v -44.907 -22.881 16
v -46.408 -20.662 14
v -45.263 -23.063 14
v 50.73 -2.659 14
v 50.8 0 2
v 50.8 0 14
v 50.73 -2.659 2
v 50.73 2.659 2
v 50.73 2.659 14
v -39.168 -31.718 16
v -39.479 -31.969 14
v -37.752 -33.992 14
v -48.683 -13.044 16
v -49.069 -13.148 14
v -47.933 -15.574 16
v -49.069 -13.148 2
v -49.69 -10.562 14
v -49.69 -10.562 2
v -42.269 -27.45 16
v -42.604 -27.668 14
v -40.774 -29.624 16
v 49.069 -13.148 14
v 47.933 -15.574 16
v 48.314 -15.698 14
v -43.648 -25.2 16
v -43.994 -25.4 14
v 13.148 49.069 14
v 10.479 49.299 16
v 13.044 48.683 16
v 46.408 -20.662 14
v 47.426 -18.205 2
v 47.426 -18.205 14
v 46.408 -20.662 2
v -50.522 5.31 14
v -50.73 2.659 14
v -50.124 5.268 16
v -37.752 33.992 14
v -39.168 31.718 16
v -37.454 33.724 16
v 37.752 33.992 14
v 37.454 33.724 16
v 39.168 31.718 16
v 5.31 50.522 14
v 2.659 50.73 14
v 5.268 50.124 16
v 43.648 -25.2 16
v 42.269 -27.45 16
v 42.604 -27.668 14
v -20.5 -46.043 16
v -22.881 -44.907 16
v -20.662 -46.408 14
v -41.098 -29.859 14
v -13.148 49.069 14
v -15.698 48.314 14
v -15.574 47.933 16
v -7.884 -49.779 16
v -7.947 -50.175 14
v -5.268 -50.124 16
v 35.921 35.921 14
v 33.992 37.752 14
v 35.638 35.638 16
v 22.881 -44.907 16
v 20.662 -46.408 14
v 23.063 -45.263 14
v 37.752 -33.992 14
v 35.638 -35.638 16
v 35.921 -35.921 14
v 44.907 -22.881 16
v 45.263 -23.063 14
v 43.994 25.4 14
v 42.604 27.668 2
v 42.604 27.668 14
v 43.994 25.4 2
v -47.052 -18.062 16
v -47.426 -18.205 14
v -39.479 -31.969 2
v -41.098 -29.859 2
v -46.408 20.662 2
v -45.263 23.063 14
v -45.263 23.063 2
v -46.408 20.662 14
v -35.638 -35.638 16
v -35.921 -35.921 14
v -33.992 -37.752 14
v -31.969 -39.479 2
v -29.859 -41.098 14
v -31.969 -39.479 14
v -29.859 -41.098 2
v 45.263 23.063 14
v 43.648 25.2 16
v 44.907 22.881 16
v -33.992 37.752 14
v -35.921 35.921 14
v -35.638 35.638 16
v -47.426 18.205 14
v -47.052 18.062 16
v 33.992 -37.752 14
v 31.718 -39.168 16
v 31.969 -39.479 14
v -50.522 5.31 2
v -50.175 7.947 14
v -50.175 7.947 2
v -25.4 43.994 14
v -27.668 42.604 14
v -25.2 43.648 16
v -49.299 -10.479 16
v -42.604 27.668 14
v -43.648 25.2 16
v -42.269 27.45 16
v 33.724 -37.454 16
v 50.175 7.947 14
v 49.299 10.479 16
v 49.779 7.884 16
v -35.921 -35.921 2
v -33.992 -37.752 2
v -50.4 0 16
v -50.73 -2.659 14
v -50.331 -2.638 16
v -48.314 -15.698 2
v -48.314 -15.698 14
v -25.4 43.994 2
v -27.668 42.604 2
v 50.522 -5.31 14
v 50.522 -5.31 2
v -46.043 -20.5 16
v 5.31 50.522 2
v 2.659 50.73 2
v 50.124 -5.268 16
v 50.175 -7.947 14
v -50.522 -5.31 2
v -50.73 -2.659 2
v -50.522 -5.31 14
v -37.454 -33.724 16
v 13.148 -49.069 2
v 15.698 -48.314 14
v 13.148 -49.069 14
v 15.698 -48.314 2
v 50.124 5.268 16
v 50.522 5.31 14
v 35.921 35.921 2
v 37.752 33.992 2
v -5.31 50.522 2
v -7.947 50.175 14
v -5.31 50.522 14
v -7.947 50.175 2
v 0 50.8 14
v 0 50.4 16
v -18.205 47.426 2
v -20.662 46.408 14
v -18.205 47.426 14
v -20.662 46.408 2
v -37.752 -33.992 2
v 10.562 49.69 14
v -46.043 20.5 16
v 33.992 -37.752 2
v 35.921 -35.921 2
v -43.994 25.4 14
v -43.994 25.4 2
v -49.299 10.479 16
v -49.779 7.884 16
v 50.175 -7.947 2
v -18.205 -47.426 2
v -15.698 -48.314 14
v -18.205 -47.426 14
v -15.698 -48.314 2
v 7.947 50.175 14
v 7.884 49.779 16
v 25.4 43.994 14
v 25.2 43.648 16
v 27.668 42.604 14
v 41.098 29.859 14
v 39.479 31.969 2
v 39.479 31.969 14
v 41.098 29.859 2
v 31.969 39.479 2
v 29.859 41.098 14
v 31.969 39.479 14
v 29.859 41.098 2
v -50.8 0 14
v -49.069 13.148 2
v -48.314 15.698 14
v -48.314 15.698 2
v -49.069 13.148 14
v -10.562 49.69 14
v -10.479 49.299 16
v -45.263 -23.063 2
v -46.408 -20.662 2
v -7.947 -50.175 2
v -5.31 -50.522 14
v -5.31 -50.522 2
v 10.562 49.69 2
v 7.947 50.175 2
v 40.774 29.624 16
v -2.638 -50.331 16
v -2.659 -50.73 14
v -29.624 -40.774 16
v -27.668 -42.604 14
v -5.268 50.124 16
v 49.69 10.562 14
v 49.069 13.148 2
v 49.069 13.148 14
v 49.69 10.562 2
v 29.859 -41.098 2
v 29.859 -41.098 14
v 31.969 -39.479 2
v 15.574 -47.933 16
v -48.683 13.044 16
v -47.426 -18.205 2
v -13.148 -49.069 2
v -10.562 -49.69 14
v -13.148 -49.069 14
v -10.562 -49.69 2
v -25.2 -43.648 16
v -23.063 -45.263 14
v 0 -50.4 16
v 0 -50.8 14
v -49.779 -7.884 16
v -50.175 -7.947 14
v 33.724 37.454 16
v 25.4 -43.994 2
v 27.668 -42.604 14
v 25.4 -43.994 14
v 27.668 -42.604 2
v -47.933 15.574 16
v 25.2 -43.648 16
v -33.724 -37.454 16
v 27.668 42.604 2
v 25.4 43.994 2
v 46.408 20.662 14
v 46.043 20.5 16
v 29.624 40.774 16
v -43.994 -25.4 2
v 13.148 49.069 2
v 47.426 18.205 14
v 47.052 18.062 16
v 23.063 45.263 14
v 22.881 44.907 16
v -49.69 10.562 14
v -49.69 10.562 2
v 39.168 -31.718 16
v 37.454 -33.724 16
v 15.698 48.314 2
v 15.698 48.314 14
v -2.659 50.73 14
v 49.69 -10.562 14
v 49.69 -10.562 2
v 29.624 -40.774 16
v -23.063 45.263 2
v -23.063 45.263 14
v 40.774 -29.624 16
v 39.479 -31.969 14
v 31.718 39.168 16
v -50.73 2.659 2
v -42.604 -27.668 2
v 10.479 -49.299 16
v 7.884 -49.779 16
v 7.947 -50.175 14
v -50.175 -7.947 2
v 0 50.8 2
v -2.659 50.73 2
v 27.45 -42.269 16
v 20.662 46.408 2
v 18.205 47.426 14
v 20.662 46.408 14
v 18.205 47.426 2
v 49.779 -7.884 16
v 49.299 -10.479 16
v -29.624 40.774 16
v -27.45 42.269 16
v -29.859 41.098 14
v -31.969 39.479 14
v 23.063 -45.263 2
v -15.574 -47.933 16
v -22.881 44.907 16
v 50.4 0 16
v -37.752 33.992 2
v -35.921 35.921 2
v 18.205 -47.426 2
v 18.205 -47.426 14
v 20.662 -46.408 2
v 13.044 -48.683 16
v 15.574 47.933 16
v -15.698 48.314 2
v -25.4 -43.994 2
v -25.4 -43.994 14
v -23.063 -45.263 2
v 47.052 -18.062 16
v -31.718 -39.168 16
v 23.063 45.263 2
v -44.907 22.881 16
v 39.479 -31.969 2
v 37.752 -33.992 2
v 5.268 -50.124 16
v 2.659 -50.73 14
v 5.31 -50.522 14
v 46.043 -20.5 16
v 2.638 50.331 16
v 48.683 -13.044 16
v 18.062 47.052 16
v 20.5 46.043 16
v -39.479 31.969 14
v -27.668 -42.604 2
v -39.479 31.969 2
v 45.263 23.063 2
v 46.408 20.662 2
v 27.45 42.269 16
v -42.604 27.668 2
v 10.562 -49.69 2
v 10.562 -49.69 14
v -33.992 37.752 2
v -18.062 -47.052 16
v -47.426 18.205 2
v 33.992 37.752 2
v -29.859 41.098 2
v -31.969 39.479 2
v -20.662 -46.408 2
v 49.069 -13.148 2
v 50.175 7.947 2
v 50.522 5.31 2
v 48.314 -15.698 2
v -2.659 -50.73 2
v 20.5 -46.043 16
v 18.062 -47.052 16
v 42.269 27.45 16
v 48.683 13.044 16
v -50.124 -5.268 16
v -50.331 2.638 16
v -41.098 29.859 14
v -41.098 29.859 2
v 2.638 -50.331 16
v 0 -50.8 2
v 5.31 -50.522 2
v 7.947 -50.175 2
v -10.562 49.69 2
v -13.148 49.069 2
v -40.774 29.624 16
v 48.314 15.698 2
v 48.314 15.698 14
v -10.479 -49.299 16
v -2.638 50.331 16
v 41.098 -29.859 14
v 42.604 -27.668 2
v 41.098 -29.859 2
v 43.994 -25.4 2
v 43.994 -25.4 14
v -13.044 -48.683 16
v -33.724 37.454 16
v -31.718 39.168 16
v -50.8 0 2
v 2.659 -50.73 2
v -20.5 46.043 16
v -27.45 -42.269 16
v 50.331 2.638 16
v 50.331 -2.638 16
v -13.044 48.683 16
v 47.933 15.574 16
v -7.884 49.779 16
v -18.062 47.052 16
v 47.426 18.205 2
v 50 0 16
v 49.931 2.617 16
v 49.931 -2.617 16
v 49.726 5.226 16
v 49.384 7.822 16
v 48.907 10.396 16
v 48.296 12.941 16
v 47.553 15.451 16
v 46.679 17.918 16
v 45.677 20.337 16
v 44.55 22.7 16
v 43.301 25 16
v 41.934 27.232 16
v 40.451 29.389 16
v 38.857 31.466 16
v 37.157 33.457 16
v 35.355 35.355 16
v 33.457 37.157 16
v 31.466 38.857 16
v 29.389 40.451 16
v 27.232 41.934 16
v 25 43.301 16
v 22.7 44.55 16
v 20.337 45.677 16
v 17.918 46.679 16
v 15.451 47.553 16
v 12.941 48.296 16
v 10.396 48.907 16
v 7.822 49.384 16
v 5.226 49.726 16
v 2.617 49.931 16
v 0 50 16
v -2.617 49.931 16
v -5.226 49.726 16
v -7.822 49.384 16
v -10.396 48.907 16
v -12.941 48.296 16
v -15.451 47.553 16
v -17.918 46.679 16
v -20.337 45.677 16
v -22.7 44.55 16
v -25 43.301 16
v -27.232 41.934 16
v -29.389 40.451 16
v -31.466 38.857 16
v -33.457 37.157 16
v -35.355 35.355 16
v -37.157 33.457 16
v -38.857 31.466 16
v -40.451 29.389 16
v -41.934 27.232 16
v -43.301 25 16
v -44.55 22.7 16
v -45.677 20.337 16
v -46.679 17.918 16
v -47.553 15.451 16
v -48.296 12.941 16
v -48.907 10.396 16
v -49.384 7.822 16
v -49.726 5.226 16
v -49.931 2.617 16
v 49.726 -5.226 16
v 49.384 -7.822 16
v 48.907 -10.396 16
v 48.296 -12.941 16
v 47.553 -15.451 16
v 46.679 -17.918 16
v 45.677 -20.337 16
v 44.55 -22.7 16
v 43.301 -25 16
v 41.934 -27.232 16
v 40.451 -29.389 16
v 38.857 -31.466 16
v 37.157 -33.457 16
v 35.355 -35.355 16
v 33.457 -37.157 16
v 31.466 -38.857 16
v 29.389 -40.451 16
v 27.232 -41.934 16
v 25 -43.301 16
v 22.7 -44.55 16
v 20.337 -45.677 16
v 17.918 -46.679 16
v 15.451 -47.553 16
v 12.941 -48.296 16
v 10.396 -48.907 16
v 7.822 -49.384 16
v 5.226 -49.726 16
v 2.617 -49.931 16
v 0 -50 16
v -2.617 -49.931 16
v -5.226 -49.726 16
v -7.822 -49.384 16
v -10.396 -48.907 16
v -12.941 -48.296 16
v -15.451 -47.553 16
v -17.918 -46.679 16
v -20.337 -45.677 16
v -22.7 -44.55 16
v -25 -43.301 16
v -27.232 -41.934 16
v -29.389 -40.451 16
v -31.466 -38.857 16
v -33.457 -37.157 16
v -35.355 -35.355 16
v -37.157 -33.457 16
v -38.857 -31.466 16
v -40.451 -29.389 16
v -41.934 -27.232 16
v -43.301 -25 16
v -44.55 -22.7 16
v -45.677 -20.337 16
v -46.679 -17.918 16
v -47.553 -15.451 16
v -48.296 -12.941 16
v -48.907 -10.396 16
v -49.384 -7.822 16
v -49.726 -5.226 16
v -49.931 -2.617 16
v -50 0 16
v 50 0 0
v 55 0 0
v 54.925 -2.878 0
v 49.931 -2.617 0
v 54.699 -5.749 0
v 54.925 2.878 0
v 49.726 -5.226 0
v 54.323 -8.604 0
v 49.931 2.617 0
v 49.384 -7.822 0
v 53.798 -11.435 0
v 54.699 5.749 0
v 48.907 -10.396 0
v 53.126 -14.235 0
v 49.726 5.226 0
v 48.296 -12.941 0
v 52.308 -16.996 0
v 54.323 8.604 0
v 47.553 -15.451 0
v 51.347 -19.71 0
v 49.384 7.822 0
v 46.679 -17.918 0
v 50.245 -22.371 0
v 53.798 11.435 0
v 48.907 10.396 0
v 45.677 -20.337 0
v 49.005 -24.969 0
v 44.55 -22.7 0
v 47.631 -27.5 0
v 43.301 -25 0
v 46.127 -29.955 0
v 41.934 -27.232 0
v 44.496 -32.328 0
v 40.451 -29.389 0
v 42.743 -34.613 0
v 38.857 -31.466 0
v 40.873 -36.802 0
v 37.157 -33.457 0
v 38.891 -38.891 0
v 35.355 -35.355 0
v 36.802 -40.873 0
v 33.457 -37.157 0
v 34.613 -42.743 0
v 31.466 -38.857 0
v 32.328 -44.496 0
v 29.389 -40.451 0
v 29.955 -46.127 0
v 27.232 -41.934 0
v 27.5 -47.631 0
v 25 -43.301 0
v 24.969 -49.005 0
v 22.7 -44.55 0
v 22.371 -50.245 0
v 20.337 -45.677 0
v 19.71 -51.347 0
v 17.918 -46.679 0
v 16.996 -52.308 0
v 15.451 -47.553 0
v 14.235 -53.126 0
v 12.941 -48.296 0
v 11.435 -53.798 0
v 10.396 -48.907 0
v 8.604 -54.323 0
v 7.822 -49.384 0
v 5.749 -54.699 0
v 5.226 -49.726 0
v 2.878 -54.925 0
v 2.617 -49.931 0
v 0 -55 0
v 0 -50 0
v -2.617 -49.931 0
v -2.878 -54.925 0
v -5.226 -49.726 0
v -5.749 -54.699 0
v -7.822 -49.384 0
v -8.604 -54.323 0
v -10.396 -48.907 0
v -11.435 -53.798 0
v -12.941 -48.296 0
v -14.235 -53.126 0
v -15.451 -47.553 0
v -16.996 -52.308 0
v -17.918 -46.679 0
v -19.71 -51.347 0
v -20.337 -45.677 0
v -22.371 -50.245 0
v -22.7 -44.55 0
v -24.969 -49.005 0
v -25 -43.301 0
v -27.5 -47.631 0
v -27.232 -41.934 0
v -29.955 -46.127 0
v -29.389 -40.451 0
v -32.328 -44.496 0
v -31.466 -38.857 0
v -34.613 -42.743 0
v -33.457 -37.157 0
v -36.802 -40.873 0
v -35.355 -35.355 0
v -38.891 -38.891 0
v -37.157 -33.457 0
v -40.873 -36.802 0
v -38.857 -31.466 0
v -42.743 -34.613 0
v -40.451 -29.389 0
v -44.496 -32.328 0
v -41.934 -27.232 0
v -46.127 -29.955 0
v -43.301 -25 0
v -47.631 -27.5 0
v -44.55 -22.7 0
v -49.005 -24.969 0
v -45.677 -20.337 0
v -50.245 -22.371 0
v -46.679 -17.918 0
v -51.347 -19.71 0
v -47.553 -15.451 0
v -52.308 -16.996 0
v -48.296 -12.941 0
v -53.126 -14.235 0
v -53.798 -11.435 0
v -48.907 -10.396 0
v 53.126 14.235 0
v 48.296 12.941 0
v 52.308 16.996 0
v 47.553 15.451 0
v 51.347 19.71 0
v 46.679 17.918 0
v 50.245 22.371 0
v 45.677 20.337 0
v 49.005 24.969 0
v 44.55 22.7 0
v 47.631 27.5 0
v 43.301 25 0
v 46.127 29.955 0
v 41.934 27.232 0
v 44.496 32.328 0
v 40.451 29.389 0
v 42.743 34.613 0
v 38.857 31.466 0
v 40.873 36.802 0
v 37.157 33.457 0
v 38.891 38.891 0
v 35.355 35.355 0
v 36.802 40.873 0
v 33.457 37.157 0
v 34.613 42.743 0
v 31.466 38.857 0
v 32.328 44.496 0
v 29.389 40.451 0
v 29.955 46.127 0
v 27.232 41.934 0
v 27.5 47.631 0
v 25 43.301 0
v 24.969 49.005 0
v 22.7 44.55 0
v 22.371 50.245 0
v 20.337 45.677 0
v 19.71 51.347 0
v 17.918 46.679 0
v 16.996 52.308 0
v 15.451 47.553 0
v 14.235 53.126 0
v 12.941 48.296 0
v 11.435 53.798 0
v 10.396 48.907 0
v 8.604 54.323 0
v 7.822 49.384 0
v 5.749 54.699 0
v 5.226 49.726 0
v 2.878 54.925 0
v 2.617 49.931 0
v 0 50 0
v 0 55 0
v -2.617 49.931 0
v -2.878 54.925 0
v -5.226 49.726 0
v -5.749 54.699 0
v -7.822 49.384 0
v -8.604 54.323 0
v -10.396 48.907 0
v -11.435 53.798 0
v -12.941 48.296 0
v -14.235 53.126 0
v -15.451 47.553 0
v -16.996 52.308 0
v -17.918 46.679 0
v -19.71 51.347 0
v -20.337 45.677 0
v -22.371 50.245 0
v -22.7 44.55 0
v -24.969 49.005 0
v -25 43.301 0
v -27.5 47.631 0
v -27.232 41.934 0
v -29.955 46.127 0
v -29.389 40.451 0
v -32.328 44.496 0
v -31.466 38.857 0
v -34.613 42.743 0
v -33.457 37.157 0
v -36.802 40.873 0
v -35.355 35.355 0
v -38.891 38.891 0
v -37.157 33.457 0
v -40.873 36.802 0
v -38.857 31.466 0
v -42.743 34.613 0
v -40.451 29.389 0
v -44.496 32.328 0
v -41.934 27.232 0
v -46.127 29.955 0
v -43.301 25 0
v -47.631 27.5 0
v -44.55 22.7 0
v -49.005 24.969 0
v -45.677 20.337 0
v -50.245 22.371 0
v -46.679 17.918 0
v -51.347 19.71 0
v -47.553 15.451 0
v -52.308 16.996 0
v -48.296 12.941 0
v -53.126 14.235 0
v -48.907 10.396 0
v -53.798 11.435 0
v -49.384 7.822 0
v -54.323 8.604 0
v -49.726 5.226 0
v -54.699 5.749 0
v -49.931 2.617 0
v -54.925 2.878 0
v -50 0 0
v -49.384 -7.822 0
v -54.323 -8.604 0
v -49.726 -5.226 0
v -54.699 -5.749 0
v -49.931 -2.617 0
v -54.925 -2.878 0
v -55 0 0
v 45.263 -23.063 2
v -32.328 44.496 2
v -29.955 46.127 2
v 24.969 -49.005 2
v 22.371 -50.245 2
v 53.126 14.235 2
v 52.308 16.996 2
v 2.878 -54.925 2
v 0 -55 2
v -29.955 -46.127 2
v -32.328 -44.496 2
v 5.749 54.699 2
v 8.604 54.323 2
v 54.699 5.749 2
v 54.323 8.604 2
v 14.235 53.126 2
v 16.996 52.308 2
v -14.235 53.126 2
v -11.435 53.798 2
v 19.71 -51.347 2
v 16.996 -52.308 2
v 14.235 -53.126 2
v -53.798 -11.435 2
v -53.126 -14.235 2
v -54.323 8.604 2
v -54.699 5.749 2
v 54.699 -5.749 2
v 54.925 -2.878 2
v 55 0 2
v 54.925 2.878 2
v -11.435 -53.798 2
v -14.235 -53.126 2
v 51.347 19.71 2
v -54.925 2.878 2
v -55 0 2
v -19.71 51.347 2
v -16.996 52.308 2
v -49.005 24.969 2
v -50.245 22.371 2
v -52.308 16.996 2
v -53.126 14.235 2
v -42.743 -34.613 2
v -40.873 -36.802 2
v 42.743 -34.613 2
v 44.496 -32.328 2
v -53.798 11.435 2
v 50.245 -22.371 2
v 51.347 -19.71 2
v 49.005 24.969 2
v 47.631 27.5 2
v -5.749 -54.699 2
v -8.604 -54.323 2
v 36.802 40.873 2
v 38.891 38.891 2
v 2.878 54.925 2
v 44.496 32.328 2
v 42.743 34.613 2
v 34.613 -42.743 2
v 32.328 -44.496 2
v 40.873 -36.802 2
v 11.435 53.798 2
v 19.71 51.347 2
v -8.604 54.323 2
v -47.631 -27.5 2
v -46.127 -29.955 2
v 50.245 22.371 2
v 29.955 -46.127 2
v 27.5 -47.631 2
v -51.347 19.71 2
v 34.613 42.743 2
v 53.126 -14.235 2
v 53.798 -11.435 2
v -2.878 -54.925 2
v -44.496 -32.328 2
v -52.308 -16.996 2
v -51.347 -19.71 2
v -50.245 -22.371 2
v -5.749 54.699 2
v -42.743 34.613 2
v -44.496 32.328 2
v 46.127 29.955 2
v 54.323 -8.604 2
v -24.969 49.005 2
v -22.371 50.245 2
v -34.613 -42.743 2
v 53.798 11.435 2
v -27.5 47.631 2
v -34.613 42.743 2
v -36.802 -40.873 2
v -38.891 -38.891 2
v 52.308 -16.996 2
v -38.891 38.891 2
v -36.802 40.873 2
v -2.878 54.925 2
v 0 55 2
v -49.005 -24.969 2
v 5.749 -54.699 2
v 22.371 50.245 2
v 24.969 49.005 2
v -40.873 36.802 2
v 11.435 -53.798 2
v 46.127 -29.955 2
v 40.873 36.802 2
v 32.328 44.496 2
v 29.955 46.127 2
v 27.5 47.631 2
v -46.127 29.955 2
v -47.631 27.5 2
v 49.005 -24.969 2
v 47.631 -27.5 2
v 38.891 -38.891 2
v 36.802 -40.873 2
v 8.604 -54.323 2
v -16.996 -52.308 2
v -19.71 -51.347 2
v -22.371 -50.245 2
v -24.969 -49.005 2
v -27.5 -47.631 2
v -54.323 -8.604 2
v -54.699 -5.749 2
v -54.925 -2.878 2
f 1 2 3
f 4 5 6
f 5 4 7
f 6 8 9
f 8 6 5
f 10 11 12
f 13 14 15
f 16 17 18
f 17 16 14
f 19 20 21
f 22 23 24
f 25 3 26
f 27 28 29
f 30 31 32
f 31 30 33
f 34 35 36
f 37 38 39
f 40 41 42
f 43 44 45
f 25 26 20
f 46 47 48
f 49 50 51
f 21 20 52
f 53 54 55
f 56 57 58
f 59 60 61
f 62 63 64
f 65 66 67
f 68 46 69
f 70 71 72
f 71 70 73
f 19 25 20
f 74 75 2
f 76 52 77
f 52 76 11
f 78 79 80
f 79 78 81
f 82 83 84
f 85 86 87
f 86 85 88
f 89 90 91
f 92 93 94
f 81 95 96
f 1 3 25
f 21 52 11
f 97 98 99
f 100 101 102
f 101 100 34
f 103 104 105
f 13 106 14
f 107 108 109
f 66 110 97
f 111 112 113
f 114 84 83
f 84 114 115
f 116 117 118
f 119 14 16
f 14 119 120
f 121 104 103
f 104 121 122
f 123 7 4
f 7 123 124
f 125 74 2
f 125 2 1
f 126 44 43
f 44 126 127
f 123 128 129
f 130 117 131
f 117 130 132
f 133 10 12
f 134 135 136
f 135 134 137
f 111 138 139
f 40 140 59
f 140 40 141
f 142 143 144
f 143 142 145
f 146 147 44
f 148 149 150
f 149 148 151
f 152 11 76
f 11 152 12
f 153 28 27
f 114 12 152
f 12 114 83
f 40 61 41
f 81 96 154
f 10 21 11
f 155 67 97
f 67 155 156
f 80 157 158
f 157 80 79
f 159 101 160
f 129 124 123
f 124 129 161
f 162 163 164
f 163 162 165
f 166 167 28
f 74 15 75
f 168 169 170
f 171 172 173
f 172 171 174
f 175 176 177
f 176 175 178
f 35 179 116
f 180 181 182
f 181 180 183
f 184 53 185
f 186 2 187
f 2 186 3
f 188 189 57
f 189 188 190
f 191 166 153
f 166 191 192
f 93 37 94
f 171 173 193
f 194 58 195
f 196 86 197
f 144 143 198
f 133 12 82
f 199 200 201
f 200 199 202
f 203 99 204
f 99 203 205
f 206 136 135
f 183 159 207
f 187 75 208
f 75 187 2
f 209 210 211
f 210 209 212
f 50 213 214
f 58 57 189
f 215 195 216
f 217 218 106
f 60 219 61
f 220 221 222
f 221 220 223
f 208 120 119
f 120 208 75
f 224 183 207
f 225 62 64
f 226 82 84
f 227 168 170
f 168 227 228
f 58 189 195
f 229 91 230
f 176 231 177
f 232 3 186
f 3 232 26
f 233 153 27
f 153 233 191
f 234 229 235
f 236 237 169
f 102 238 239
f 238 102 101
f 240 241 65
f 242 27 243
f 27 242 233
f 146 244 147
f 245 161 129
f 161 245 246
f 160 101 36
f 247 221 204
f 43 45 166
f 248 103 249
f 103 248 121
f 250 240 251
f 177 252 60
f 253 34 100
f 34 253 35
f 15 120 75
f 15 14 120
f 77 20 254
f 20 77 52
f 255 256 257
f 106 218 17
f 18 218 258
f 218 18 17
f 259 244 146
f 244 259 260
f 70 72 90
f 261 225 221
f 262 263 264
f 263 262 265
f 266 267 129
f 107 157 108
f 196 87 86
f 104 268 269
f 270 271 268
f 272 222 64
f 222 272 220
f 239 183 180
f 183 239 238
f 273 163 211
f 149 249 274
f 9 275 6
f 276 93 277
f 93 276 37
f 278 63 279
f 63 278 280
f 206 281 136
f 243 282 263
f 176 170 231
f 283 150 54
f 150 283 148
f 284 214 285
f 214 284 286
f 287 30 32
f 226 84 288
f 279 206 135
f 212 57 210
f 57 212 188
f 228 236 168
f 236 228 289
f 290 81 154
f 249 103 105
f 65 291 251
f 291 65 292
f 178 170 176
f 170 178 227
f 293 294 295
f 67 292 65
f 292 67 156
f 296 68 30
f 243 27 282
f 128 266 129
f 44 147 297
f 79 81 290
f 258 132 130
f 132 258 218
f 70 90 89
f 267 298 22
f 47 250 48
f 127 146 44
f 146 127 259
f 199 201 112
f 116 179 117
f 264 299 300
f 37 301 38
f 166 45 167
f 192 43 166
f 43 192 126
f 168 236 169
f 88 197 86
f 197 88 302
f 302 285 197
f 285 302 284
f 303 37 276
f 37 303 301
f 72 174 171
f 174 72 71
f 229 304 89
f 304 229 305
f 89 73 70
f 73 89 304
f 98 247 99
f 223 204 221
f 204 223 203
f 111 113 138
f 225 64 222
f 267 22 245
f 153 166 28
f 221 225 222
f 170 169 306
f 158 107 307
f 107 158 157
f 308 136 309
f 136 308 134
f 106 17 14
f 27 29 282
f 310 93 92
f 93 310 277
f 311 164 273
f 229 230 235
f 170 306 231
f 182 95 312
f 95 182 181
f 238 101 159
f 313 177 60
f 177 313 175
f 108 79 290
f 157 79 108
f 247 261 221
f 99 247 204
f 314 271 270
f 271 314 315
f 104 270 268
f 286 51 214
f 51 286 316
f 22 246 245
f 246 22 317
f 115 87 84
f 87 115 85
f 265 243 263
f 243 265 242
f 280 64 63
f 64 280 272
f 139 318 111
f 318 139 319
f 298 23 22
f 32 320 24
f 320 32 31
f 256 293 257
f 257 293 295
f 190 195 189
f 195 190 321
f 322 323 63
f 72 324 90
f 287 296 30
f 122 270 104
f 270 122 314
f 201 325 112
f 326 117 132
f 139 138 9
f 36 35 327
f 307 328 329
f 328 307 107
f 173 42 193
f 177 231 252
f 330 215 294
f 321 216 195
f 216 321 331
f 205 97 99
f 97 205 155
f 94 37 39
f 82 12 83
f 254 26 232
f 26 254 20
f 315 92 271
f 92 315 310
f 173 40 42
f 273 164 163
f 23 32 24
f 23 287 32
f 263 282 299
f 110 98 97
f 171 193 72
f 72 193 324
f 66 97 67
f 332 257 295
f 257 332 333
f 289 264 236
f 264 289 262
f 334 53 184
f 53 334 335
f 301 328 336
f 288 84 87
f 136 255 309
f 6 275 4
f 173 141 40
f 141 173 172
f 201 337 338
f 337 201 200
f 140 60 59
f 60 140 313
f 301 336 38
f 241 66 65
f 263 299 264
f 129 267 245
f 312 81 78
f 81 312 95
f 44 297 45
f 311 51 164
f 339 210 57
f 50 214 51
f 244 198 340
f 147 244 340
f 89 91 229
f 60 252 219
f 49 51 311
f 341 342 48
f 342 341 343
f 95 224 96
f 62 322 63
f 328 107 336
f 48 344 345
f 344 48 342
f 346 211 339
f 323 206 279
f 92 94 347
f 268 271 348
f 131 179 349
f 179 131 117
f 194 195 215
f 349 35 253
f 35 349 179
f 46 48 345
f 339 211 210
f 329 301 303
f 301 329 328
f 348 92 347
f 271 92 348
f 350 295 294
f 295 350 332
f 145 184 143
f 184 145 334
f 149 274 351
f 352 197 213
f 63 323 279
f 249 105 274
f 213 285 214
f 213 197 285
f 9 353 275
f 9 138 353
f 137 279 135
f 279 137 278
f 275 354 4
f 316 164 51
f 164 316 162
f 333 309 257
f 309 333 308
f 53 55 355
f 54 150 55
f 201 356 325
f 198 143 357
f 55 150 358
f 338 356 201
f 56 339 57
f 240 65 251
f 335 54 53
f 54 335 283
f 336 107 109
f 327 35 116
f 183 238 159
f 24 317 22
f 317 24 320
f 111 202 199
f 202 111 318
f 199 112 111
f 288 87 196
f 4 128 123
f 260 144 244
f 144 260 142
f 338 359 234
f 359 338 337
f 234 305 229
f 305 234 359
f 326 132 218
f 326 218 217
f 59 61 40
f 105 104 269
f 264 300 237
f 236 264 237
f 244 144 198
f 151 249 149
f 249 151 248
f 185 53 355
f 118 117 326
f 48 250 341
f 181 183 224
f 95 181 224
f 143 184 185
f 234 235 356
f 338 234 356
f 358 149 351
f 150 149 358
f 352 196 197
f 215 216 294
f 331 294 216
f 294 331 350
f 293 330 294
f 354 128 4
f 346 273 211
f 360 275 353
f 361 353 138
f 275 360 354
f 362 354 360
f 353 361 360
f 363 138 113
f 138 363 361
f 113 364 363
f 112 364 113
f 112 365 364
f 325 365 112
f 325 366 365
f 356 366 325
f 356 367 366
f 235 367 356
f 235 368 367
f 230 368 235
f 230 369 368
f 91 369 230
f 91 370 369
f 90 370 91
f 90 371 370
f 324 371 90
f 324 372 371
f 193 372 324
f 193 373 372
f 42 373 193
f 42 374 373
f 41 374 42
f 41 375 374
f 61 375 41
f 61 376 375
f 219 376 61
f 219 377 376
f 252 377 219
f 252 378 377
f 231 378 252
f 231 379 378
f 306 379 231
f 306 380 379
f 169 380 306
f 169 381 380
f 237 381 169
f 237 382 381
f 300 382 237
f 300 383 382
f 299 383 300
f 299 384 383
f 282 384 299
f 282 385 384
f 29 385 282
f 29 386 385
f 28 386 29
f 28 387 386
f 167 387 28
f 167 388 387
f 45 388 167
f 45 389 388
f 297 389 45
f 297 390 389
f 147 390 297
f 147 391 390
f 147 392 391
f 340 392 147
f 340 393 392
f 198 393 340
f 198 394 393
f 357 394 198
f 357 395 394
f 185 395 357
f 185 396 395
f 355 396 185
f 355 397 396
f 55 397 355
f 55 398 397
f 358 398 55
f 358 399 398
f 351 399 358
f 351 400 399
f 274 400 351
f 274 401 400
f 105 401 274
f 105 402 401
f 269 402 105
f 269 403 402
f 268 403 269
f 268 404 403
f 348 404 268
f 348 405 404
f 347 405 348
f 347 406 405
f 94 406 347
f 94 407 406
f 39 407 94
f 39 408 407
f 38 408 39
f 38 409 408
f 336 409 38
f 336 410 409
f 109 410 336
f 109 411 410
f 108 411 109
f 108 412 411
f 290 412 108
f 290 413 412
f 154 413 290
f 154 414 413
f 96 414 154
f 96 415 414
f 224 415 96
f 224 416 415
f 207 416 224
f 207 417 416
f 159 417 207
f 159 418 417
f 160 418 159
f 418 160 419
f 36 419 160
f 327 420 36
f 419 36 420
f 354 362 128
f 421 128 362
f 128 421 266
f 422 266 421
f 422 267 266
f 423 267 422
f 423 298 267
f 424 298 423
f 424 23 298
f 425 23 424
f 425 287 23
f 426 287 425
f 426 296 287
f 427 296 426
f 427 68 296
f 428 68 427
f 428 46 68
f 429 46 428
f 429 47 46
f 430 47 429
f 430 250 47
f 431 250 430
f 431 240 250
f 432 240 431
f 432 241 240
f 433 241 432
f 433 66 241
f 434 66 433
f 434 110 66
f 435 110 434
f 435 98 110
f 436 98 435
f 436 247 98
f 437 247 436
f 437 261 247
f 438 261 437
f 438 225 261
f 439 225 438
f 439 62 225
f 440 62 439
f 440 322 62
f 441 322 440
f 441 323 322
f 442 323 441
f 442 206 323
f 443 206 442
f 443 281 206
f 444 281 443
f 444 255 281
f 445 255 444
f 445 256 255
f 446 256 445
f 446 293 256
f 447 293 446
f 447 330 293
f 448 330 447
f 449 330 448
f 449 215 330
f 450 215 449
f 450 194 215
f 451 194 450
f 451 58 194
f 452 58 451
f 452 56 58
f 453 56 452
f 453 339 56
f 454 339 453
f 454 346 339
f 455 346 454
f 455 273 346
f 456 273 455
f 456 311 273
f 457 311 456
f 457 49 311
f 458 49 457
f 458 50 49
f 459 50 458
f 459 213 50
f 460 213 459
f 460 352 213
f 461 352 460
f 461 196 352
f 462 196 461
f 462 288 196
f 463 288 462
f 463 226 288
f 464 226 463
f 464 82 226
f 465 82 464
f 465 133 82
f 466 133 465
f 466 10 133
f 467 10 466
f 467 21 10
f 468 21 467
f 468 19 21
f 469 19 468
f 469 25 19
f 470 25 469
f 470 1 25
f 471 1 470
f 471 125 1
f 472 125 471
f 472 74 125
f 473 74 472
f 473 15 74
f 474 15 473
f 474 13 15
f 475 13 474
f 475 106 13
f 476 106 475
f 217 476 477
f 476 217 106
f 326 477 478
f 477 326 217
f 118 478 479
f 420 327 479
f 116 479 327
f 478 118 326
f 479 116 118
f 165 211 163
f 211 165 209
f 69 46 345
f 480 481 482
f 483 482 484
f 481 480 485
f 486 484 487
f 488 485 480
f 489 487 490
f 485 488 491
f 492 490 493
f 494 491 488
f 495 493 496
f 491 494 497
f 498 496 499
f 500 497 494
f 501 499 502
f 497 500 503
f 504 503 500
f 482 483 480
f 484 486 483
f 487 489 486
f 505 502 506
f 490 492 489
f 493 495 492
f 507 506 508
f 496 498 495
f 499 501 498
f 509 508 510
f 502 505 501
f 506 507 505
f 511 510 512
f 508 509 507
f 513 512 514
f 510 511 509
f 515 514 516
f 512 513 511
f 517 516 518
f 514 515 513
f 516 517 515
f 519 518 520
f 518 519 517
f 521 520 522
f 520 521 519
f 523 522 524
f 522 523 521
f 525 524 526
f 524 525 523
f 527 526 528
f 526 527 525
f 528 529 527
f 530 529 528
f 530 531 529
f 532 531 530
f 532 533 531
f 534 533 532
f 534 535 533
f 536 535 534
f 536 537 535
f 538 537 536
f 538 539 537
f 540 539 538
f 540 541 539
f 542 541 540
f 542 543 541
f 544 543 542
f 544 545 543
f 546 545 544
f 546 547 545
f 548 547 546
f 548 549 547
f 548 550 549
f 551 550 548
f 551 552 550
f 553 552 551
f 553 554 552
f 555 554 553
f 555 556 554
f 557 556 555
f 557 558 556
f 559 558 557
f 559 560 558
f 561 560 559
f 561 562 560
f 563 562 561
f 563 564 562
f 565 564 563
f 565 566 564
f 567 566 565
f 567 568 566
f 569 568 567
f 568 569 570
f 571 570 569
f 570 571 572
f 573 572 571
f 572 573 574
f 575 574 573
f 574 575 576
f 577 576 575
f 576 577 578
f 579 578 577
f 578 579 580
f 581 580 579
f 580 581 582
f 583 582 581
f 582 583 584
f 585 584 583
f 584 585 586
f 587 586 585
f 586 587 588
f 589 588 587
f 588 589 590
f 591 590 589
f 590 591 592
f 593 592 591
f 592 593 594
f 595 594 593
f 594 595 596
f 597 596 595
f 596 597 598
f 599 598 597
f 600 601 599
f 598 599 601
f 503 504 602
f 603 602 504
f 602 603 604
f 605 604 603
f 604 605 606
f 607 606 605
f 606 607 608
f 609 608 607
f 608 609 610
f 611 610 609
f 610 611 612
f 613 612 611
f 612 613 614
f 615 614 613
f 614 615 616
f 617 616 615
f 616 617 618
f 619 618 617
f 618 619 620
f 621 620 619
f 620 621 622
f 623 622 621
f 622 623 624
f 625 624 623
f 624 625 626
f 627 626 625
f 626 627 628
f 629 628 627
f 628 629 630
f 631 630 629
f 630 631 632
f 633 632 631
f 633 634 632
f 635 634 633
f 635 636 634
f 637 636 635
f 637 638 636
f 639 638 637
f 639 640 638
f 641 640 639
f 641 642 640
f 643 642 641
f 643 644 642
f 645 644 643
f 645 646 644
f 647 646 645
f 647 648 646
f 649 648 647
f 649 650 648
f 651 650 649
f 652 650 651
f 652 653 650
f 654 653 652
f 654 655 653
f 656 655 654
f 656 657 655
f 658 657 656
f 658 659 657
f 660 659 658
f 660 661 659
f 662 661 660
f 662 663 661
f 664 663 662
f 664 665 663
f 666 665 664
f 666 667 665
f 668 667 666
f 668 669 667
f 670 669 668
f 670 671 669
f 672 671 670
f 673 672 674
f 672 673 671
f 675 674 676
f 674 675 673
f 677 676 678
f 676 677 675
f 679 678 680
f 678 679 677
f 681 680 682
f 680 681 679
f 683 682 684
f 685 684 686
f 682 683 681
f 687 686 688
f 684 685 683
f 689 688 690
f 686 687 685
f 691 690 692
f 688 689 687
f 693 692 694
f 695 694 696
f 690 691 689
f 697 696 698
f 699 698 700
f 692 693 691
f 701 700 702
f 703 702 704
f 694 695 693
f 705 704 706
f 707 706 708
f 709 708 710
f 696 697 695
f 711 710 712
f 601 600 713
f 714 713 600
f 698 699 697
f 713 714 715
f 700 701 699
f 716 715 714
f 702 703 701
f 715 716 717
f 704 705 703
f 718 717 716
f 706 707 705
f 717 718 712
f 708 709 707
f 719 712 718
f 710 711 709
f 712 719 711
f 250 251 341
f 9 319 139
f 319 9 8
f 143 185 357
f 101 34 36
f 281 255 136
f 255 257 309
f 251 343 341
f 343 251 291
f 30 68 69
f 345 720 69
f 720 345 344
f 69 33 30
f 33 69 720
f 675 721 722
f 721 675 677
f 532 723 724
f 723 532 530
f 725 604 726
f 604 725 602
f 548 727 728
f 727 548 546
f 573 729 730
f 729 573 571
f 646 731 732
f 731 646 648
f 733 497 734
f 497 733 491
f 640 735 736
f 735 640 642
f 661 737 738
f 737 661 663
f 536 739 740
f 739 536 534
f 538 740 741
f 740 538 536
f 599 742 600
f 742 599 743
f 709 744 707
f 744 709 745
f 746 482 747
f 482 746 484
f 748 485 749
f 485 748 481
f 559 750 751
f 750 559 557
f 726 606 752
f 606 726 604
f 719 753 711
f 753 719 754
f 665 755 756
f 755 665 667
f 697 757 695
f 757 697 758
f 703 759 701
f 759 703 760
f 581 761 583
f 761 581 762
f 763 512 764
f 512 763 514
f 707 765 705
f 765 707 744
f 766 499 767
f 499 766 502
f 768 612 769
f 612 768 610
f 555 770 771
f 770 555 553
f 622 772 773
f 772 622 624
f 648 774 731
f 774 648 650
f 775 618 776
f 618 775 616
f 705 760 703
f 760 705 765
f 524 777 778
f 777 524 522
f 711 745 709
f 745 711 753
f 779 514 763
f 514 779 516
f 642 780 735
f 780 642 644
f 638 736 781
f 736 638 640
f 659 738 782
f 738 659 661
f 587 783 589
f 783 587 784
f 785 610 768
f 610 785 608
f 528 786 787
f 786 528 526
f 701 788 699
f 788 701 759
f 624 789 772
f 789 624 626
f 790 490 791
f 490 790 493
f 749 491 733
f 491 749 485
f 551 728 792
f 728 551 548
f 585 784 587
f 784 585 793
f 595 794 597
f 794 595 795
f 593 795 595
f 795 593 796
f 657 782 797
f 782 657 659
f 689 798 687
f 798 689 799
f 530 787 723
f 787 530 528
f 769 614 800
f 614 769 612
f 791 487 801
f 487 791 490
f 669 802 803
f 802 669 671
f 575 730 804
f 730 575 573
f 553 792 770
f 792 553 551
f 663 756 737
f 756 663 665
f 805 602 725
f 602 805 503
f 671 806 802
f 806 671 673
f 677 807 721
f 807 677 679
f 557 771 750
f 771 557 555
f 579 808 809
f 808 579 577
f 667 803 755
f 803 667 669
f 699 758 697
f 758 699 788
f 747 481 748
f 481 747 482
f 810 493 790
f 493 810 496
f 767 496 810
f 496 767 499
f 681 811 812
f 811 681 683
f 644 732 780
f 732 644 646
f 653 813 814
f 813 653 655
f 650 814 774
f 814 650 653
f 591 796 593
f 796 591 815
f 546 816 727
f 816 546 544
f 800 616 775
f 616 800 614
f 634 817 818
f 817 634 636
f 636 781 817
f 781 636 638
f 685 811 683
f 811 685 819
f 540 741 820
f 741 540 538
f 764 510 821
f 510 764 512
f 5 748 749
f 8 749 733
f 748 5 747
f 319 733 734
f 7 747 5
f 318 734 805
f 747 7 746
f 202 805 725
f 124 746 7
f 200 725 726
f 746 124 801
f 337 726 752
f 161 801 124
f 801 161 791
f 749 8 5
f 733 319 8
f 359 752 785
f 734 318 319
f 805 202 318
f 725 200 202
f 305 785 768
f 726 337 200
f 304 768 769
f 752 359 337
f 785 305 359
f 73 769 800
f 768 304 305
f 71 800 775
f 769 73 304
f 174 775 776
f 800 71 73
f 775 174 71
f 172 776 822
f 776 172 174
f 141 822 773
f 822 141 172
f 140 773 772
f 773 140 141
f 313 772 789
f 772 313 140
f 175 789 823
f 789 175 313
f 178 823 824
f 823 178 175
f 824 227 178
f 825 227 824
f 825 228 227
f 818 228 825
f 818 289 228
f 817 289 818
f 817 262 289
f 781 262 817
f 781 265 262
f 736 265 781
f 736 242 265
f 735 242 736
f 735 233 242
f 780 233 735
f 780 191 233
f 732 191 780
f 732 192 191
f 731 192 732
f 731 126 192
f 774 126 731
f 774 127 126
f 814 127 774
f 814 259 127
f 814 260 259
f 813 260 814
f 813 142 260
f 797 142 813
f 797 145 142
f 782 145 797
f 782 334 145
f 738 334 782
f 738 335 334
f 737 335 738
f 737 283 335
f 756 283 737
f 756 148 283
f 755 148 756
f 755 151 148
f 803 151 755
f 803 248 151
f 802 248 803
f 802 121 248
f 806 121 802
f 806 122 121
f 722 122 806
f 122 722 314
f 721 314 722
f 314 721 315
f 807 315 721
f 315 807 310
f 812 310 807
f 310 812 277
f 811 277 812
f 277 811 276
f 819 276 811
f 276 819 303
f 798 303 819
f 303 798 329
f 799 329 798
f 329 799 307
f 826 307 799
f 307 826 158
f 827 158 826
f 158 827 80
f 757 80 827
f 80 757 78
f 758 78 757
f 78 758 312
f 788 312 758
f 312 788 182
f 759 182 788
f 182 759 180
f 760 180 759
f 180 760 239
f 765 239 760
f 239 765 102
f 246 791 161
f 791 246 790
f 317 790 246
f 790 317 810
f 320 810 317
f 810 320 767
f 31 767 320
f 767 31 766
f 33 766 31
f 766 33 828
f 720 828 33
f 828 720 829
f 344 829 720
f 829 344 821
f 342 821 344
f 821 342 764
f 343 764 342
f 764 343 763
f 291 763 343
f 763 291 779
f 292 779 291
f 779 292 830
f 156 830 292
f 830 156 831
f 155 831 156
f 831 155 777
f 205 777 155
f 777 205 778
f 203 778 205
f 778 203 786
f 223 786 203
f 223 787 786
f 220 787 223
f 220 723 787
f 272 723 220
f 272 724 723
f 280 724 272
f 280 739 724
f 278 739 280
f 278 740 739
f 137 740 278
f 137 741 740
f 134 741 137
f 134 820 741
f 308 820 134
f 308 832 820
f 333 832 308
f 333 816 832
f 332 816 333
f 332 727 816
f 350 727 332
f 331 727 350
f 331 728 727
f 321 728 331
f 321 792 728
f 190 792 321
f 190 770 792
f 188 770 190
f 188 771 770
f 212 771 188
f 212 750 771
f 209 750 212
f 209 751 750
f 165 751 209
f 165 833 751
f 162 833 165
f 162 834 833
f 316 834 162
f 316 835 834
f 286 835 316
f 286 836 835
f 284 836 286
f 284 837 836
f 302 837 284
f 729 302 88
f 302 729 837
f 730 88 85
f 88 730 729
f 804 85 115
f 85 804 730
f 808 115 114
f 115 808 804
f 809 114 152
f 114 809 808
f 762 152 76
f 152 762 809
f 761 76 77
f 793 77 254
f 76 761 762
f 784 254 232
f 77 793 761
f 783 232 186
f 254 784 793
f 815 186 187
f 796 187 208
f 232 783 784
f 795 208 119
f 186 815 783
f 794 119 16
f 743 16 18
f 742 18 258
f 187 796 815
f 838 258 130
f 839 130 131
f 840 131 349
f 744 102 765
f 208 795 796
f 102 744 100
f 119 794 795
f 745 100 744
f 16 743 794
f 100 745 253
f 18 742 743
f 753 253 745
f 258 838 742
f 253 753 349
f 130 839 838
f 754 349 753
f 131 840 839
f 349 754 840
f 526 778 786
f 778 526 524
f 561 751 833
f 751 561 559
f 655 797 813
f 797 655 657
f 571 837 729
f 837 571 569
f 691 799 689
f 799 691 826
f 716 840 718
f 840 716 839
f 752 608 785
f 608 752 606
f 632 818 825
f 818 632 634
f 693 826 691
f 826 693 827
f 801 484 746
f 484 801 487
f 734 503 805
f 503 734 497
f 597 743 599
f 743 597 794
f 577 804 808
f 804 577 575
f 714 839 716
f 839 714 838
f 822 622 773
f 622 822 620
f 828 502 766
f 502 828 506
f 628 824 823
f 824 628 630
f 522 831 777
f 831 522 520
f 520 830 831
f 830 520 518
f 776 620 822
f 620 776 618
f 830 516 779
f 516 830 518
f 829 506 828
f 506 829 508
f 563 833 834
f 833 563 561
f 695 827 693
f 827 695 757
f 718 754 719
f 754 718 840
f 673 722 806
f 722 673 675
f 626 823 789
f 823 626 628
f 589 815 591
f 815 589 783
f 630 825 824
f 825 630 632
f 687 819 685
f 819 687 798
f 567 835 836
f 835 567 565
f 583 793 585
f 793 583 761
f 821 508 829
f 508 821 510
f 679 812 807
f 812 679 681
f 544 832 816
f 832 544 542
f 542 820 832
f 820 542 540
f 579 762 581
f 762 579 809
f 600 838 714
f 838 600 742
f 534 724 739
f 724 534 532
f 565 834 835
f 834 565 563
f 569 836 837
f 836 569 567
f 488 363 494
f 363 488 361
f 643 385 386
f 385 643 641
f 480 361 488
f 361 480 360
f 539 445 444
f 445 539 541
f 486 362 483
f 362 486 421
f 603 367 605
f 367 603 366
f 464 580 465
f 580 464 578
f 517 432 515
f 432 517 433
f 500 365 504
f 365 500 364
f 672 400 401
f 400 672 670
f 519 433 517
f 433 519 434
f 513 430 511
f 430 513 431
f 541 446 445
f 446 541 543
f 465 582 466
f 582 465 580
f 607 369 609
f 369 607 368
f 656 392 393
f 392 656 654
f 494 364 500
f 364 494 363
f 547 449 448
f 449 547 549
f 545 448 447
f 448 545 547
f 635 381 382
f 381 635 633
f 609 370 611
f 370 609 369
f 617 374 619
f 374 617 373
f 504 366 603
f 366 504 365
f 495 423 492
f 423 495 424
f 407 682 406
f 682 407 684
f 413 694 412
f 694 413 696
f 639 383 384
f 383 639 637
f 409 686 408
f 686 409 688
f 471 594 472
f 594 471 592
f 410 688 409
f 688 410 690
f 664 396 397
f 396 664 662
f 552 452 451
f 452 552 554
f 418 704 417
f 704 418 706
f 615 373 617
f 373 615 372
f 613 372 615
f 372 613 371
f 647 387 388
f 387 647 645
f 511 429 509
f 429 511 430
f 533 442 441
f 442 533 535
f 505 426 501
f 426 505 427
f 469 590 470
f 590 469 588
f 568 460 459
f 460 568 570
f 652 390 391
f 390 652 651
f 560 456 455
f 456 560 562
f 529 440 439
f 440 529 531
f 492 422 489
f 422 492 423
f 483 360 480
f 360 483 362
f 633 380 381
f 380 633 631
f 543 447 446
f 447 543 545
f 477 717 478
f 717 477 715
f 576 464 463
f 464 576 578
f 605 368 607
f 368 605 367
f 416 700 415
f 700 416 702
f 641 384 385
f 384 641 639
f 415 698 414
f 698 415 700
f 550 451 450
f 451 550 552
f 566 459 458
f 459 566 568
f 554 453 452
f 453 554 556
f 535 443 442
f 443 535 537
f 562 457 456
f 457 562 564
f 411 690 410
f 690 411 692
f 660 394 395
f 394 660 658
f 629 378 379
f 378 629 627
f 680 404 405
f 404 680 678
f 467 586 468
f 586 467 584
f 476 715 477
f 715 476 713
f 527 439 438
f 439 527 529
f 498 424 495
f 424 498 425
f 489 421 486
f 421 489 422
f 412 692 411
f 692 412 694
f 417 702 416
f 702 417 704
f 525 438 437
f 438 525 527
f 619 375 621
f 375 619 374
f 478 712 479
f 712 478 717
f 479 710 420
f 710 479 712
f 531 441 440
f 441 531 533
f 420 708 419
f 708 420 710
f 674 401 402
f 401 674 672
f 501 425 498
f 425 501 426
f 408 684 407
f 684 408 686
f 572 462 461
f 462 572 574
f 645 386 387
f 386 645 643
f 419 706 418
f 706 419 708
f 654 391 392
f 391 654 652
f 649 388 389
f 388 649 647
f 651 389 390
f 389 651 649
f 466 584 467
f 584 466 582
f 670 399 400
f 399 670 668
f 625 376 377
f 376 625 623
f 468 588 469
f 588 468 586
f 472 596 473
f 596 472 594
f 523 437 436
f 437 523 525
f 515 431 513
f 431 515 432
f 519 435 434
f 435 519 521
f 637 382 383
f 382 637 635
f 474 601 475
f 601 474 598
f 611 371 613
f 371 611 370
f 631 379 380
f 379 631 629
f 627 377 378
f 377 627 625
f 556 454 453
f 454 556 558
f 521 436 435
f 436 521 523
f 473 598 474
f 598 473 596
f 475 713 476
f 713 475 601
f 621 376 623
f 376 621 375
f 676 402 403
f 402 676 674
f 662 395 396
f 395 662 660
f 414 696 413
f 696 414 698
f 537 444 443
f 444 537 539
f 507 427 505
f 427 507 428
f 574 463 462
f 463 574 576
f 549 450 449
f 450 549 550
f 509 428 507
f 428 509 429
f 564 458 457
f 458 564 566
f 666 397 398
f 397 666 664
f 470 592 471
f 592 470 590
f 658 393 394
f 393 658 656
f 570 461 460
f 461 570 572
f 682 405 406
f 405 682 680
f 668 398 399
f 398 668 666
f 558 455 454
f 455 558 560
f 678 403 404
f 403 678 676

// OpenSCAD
include <BOSL/constants.scad>
use <BOSL/shapes.scad>
use <BOSL/transforms.scad>

$fn=120;

w=0.8;

module simple_circle(d = 40) {
    difference() {
        union() {
            hull() {
                cylinder(d = d + w, h = 16);
                cylinder(d = d + 2*w, h = 14);
            }
            cylinder(d = d+10, h = 2);
        }
        cylinder(d = d, h = 17);
    }
}


simple_circle(100);
